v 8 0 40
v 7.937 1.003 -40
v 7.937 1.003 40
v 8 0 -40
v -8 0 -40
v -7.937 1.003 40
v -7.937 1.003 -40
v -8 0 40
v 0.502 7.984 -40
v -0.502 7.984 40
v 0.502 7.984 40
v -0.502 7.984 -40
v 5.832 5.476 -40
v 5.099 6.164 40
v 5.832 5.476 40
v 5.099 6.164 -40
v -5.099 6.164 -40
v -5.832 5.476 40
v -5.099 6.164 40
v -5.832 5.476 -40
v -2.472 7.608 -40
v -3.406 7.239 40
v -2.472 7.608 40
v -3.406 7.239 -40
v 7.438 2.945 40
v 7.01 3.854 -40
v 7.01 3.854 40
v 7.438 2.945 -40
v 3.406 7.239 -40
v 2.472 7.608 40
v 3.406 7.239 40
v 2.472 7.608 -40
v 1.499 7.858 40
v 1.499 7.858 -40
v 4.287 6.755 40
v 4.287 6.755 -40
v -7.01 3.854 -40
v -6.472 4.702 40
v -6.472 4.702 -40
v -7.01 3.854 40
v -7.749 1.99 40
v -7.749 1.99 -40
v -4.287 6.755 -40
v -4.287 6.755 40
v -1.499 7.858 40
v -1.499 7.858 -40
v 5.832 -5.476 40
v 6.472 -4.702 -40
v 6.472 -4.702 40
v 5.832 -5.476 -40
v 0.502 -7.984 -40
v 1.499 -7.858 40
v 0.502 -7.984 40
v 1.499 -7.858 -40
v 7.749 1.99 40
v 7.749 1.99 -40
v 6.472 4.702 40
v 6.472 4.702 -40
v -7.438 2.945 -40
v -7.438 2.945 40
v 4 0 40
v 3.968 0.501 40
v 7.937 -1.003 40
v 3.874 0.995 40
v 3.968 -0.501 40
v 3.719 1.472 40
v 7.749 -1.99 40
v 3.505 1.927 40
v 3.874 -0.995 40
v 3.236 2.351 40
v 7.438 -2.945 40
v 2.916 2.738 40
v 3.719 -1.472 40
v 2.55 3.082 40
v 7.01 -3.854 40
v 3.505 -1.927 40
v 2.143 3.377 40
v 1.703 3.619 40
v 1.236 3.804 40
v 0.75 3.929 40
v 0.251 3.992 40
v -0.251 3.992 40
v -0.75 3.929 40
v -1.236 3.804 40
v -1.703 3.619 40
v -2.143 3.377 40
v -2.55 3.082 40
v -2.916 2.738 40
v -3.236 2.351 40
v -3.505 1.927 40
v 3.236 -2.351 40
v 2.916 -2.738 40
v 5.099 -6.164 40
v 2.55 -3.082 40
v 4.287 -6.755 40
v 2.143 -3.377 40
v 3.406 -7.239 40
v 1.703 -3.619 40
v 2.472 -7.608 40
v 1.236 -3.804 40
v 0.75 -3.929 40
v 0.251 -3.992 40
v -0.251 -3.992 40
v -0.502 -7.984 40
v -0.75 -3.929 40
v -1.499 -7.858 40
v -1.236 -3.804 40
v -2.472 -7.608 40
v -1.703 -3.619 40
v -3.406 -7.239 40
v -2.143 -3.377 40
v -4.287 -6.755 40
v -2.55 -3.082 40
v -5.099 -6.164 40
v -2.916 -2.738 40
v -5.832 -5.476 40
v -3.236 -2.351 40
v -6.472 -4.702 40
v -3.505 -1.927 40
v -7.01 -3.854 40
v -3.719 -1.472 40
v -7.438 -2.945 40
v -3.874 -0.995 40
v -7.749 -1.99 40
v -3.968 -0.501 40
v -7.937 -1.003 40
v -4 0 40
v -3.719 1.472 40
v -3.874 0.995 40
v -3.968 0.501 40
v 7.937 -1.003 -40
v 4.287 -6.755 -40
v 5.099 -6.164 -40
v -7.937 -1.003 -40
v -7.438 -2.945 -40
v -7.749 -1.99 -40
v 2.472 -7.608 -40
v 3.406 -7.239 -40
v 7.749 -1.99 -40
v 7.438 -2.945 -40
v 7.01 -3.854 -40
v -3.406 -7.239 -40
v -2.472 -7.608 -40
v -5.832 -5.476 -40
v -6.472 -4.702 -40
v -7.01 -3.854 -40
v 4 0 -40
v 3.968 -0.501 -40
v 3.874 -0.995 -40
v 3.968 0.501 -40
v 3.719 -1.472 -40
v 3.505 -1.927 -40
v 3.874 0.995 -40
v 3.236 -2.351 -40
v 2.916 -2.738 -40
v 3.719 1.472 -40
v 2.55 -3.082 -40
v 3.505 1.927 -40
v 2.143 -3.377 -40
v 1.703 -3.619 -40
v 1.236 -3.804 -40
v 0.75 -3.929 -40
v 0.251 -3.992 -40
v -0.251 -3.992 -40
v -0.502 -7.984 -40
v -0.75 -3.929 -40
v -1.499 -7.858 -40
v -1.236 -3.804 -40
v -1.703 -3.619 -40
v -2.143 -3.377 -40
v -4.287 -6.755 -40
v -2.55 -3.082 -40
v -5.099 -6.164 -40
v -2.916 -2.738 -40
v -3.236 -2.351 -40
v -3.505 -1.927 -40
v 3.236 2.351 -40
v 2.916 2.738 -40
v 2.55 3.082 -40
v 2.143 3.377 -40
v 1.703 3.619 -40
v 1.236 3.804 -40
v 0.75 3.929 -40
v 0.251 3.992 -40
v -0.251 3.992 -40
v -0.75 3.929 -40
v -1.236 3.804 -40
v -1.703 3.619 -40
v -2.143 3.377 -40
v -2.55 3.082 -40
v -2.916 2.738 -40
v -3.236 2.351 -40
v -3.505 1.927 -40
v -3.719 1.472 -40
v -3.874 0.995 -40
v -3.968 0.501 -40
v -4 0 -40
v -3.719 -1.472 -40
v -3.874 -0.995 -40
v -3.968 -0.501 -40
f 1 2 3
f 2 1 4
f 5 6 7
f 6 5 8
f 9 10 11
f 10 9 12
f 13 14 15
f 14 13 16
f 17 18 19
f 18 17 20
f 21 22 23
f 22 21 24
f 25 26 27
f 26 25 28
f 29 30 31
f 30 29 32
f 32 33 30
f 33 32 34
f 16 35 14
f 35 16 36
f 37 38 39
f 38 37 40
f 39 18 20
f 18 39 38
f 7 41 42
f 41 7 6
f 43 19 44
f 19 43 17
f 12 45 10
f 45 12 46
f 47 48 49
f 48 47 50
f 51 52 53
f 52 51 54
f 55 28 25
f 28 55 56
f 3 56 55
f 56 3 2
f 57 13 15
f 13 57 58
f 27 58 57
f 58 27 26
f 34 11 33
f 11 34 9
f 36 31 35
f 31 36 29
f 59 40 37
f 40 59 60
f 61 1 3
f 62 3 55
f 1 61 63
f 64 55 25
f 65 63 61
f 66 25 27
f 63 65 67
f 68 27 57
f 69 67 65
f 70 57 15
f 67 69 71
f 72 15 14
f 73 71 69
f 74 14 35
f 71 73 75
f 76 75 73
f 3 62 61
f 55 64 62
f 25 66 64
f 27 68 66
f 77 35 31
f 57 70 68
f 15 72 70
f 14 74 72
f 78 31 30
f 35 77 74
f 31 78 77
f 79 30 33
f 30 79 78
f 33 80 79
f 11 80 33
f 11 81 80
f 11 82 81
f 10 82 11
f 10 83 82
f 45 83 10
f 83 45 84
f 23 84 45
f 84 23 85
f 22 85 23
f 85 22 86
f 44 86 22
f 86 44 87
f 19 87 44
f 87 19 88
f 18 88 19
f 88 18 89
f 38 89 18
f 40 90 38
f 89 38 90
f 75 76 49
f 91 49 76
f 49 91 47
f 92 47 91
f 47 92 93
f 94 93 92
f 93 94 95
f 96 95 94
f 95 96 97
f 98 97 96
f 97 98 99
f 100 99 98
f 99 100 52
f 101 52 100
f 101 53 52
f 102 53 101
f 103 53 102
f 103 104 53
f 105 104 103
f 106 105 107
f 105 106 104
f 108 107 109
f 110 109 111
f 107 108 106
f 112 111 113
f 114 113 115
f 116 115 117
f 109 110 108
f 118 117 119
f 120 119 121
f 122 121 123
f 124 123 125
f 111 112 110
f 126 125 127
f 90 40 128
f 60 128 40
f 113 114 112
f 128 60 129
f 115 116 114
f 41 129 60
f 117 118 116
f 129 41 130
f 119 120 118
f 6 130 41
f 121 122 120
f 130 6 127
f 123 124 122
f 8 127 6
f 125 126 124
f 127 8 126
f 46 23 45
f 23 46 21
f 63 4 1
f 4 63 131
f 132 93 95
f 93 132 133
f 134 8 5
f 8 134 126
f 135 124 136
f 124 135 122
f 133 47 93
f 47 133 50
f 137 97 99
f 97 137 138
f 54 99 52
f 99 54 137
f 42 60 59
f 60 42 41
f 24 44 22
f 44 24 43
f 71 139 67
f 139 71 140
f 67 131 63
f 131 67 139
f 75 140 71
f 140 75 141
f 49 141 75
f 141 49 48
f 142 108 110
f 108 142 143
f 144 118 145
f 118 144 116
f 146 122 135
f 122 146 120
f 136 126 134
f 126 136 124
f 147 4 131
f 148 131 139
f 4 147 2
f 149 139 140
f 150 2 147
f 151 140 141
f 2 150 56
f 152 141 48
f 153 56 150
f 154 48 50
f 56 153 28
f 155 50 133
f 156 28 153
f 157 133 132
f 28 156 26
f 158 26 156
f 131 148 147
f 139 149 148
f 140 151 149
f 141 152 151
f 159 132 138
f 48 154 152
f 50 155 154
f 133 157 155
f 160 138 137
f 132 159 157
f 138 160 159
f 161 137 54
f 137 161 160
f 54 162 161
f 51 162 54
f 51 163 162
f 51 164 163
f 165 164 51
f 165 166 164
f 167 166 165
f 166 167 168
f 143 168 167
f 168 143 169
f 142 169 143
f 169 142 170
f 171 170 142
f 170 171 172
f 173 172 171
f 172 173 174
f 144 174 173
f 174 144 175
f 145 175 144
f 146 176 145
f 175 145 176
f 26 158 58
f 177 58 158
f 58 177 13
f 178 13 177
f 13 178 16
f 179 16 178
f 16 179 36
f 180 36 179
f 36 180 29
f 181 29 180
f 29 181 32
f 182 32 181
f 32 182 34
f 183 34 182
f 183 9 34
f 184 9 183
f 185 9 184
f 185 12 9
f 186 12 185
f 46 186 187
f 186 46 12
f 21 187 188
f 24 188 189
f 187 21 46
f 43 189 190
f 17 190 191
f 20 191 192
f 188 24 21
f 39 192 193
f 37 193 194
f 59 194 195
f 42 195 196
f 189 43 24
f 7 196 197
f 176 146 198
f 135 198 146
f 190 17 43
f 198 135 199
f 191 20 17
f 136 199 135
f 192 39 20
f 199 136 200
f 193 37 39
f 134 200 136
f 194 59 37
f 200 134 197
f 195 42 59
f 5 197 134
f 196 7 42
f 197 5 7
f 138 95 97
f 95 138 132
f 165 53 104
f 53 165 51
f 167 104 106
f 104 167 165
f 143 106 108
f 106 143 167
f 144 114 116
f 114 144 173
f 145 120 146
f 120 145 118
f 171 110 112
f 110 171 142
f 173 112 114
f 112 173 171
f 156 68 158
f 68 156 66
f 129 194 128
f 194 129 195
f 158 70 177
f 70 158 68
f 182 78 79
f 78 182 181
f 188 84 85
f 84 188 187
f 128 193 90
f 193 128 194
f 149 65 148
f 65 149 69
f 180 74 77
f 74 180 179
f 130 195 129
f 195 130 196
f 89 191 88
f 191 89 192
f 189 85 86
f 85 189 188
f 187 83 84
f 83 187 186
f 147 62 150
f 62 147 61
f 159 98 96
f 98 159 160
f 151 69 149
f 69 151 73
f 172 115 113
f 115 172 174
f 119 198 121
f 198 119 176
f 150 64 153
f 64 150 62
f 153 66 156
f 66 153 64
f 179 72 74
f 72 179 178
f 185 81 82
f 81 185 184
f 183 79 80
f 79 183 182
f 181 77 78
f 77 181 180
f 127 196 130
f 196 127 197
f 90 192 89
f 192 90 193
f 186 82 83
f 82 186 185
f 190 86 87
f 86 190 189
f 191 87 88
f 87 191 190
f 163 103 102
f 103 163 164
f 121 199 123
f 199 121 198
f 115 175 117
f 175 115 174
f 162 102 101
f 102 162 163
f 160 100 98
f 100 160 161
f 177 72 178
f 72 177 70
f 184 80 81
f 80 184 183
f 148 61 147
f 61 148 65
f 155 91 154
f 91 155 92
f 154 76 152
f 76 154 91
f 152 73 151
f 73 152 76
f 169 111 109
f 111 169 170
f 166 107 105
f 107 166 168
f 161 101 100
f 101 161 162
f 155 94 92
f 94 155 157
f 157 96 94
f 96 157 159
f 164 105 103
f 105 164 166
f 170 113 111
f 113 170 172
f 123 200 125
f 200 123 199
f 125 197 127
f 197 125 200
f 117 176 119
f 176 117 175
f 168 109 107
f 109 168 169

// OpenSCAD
$fn = 50;


difference() {
	union() {
		translate(v = [0, 0, -40.0000000000]) {
			cylinder(h = 80, r = 8.0000000000);
		}
	}
	union() {
		translate(v = [0, 0, -100.0000000000]) {
			cylinder(h = 200, r = 4.0000000000);
		}
	}
}
